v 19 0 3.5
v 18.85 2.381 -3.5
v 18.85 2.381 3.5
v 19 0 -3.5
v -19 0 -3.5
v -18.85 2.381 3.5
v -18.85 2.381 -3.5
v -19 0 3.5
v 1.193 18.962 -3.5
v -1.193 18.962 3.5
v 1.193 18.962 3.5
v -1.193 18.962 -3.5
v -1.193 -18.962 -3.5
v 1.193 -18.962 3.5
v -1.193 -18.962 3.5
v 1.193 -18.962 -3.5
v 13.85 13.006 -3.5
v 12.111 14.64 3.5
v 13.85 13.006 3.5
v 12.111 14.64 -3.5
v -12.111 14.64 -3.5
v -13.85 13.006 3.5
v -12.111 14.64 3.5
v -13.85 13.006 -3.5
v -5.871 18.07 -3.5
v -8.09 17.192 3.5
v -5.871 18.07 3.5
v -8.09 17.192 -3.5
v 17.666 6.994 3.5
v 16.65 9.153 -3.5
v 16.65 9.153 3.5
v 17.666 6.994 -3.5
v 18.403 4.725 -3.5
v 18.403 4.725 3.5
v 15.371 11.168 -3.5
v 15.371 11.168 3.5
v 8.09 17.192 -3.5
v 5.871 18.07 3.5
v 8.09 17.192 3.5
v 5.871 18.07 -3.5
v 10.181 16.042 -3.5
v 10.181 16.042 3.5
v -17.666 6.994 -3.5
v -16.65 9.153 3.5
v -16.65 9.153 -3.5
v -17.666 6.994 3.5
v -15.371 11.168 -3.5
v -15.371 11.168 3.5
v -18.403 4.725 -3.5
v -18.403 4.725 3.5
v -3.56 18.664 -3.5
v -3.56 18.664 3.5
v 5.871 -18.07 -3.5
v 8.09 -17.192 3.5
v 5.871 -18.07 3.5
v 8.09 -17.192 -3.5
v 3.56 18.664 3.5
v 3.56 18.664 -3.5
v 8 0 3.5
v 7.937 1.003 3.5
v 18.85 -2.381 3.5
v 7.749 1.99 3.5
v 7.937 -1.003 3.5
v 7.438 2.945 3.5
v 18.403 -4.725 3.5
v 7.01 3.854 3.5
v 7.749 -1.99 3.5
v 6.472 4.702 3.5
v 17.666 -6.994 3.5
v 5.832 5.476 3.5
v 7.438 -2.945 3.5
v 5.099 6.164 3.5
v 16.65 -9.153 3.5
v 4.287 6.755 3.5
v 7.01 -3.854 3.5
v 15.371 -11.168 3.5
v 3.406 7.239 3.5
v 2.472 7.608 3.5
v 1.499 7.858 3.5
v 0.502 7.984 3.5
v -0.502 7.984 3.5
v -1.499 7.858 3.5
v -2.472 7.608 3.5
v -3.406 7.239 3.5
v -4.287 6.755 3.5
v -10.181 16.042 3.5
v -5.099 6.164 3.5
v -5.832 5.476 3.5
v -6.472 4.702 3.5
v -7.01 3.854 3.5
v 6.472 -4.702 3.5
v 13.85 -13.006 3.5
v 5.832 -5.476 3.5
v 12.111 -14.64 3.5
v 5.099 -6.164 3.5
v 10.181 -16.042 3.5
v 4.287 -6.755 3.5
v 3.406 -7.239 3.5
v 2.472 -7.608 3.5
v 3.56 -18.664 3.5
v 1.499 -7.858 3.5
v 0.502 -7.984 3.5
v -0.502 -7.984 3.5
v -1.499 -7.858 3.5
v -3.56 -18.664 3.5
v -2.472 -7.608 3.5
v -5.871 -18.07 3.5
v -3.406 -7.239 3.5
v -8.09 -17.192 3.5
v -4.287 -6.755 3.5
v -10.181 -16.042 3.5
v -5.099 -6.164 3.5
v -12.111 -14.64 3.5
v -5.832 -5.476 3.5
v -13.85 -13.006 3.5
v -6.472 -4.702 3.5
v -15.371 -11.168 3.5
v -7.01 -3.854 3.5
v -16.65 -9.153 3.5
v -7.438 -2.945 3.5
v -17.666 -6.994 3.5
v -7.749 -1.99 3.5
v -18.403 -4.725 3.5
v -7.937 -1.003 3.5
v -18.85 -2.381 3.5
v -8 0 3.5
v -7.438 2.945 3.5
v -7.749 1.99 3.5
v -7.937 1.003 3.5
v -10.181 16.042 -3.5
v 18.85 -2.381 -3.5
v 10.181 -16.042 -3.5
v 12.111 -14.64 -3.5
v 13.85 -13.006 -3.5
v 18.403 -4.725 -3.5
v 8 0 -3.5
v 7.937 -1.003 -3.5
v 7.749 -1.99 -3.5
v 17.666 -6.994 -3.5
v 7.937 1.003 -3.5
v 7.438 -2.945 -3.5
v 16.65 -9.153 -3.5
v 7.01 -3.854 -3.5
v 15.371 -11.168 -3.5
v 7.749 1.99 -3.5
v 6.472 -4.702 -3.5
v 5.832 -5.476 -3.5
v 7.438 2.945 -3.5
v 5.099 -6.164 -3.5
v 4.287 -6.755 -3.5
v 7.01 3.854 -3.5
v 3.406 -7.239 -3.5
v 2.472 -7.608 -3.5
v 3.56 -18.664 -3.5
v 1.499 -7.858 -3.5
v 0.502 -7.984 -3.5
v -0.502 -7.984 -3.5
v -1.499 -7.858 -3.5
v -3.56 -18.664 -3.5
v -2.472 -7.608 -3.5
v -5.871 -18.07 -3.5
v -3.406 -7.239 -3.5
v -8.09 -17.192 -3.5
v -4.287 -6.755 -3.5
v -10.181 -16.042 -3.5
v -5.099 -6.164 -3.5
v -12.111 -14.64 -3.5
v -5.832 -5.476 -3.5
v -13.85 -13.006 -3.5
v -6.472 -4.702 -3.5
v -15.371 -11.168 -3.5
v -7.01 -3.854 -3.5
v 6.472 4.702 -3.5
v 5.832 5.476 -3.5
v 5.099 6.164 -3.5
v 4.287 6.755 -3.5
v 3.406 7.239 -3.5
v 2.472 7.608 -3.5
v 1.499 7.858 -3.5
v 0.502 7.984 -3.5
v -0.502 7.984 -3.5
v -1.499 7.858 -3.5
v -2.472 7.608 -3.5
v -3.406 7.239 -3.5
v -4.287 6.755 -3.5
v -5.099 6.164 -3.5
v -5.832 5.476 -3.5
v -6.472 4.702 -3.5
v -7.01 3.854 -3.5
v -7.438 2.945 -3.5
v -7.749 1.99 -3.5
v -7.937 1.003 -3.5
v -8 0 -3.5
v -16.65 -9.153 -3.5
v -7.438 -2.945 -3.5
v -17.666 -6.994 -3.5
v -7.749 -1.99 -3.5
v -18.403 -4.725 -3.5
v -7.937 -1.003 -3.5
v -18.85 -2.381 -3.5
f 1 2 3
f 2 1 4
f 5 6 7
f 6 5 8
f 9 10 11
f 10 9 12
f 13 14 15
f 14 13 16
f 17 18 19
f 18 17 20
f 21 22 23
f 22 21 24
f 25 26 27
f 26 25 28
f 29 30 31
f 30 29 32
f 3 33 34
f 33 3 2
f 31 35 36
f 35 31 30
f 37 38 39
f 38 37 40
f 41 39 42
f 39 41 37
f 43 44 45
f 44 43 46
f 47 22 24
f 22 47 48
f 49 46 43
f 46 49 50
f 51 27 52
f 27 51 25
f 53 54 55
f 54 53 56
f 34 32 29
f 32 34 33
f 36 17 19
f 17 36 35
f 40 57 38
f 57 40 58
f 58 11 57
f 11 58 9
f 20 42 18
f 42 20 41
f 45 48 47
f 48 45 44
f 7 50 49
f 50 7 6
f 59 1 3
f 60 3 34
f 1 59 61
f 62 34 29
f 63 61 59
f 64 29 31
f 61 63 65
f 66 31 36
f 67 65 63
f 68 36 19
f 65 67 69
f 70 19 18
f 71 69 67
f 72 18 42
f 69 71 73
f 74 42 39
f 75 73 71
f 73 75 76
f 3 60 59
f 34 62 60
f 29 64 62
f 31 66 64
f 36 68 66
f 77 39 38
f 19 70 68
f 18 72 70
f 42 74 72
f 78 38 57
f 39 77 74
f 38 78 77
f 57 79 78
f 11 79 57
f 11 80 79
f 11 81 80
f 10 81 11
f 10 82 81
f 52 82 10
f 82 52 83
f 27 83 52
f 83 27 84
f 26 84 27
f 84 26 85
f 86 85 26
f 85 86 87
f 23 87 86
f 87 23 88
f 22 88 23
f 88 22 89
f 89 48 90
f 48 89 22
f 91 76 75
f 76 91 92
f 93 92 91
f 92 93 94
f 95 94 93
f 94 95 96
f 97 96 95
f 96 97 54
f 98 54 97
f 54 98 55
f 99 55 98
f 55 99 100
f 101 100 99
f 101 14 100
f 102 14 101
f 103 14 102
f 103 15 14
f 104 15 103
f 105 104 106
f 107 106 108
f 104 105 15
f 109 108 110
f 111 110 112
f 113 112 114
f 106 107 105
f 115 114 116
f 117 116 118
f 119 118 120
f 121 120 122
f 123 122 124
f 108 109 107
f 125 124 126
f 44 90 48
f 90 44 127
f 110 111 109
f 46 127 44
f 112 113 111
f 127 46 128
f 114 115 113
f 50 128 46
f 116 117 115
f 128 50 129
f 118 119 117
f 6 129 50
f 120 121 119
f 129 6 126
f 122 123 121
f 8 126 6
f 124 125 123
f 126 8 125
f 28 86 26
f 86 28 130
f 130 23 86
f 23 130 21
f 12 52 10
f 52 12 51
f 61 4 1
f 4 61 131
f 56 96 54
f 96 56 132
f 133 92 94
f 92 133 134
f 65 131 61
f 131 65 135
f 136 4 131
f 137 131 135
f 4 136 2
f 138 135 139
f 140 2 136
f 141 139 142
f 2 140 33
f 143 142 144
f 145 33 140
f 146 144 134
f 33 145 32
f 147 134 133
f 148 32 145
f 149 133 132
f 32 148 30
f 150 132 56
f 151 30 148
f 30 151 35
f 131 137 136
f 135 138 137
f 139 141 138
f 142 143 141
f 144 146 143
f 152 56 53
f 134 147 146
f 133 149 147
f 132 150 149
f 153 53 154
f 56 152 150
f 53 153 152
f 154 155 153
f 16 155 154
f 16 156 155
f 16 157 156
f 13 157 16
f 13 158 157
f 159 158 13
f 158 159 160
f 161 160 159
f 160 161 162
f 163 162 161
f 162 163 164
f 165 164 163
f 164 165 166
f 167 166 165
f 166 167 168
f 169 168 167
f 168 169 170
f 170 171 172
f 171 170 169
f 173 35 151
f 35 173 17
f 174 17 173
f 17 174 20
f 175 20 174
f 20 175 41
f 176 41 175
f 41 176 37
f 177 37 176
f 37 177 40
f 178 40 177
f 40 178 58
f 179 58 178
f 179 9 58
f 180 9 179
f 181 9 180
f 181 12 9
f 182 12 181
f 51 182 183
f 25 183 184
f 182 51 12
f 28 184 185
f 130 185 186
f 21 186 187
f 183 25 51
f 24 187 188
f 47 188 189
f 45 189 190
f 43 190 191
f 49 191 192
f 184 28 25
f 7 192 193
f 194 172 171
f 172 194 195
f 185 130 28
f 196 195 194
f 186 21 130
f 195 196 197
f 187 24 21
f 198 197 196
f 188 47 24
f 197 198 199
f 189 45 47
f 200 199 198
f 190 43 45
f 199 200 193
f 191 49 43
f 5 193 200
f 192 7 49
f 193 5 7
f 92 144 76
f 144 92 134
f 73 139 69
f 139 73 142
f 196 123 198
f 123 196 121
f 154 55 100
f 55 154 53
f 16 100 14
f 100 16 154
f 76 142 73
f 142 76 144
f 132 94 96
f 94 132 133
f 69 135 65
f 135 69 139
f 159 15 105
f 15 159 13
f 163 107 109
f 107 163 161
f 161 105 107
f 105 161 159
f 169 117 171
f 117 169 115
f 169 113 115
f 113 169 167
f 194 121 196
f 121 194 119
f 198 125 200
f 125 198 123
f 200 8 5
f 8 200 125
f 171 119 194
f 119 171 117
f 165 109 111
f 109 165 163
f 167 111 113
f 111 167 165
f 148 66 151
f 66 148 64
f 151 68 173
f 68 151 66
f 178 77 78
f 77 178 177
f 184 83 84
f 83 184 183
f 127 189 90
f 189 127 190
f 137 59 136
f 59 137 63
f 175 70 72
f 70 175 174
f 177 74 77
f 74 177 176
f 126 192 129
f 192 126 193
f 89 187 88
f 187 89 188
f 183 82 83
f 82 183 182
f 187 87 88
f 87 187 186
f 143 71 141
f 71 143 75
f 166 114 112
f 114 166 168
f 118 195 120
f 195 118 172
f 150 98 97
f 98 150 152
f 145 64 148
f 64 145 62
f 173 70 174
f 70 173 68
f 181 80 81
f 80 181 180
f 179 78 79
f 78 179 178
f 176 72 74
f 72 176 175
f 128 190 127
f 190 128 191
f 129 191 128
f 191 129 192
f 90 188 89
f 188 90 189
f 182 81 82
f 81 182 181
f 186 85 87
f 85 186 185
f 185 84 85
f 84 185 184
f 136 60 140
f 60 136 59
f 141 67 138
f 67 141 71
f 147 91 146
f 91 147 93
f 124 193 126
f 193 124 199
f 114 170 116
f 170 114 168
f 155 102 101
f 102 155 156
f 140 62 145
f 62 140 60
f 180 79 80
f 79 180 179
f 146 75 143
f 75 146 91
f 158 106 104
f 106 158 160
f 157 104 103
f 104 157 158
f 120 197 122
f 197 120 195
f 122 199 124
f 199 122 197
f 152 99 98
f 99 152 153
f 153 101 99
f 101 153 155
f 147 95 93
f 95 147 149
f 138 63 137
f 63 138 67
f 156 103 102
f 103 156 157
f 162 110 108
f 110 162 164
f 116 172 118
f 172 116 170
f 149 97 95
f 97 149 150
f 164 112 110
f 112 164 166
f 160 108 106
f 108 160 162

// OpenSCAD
$fn = 50;


difference() {
	union() {
		translate(v = [0, 0, -3.5000000000]) {
			cylinder(h = 7, r = 19.0000000000);
		}
	}
	union() {
		translate(v = [0, 0, -100.0000000000]) {
			cylinder(h = 200, r = 8);
		}
	}
}
